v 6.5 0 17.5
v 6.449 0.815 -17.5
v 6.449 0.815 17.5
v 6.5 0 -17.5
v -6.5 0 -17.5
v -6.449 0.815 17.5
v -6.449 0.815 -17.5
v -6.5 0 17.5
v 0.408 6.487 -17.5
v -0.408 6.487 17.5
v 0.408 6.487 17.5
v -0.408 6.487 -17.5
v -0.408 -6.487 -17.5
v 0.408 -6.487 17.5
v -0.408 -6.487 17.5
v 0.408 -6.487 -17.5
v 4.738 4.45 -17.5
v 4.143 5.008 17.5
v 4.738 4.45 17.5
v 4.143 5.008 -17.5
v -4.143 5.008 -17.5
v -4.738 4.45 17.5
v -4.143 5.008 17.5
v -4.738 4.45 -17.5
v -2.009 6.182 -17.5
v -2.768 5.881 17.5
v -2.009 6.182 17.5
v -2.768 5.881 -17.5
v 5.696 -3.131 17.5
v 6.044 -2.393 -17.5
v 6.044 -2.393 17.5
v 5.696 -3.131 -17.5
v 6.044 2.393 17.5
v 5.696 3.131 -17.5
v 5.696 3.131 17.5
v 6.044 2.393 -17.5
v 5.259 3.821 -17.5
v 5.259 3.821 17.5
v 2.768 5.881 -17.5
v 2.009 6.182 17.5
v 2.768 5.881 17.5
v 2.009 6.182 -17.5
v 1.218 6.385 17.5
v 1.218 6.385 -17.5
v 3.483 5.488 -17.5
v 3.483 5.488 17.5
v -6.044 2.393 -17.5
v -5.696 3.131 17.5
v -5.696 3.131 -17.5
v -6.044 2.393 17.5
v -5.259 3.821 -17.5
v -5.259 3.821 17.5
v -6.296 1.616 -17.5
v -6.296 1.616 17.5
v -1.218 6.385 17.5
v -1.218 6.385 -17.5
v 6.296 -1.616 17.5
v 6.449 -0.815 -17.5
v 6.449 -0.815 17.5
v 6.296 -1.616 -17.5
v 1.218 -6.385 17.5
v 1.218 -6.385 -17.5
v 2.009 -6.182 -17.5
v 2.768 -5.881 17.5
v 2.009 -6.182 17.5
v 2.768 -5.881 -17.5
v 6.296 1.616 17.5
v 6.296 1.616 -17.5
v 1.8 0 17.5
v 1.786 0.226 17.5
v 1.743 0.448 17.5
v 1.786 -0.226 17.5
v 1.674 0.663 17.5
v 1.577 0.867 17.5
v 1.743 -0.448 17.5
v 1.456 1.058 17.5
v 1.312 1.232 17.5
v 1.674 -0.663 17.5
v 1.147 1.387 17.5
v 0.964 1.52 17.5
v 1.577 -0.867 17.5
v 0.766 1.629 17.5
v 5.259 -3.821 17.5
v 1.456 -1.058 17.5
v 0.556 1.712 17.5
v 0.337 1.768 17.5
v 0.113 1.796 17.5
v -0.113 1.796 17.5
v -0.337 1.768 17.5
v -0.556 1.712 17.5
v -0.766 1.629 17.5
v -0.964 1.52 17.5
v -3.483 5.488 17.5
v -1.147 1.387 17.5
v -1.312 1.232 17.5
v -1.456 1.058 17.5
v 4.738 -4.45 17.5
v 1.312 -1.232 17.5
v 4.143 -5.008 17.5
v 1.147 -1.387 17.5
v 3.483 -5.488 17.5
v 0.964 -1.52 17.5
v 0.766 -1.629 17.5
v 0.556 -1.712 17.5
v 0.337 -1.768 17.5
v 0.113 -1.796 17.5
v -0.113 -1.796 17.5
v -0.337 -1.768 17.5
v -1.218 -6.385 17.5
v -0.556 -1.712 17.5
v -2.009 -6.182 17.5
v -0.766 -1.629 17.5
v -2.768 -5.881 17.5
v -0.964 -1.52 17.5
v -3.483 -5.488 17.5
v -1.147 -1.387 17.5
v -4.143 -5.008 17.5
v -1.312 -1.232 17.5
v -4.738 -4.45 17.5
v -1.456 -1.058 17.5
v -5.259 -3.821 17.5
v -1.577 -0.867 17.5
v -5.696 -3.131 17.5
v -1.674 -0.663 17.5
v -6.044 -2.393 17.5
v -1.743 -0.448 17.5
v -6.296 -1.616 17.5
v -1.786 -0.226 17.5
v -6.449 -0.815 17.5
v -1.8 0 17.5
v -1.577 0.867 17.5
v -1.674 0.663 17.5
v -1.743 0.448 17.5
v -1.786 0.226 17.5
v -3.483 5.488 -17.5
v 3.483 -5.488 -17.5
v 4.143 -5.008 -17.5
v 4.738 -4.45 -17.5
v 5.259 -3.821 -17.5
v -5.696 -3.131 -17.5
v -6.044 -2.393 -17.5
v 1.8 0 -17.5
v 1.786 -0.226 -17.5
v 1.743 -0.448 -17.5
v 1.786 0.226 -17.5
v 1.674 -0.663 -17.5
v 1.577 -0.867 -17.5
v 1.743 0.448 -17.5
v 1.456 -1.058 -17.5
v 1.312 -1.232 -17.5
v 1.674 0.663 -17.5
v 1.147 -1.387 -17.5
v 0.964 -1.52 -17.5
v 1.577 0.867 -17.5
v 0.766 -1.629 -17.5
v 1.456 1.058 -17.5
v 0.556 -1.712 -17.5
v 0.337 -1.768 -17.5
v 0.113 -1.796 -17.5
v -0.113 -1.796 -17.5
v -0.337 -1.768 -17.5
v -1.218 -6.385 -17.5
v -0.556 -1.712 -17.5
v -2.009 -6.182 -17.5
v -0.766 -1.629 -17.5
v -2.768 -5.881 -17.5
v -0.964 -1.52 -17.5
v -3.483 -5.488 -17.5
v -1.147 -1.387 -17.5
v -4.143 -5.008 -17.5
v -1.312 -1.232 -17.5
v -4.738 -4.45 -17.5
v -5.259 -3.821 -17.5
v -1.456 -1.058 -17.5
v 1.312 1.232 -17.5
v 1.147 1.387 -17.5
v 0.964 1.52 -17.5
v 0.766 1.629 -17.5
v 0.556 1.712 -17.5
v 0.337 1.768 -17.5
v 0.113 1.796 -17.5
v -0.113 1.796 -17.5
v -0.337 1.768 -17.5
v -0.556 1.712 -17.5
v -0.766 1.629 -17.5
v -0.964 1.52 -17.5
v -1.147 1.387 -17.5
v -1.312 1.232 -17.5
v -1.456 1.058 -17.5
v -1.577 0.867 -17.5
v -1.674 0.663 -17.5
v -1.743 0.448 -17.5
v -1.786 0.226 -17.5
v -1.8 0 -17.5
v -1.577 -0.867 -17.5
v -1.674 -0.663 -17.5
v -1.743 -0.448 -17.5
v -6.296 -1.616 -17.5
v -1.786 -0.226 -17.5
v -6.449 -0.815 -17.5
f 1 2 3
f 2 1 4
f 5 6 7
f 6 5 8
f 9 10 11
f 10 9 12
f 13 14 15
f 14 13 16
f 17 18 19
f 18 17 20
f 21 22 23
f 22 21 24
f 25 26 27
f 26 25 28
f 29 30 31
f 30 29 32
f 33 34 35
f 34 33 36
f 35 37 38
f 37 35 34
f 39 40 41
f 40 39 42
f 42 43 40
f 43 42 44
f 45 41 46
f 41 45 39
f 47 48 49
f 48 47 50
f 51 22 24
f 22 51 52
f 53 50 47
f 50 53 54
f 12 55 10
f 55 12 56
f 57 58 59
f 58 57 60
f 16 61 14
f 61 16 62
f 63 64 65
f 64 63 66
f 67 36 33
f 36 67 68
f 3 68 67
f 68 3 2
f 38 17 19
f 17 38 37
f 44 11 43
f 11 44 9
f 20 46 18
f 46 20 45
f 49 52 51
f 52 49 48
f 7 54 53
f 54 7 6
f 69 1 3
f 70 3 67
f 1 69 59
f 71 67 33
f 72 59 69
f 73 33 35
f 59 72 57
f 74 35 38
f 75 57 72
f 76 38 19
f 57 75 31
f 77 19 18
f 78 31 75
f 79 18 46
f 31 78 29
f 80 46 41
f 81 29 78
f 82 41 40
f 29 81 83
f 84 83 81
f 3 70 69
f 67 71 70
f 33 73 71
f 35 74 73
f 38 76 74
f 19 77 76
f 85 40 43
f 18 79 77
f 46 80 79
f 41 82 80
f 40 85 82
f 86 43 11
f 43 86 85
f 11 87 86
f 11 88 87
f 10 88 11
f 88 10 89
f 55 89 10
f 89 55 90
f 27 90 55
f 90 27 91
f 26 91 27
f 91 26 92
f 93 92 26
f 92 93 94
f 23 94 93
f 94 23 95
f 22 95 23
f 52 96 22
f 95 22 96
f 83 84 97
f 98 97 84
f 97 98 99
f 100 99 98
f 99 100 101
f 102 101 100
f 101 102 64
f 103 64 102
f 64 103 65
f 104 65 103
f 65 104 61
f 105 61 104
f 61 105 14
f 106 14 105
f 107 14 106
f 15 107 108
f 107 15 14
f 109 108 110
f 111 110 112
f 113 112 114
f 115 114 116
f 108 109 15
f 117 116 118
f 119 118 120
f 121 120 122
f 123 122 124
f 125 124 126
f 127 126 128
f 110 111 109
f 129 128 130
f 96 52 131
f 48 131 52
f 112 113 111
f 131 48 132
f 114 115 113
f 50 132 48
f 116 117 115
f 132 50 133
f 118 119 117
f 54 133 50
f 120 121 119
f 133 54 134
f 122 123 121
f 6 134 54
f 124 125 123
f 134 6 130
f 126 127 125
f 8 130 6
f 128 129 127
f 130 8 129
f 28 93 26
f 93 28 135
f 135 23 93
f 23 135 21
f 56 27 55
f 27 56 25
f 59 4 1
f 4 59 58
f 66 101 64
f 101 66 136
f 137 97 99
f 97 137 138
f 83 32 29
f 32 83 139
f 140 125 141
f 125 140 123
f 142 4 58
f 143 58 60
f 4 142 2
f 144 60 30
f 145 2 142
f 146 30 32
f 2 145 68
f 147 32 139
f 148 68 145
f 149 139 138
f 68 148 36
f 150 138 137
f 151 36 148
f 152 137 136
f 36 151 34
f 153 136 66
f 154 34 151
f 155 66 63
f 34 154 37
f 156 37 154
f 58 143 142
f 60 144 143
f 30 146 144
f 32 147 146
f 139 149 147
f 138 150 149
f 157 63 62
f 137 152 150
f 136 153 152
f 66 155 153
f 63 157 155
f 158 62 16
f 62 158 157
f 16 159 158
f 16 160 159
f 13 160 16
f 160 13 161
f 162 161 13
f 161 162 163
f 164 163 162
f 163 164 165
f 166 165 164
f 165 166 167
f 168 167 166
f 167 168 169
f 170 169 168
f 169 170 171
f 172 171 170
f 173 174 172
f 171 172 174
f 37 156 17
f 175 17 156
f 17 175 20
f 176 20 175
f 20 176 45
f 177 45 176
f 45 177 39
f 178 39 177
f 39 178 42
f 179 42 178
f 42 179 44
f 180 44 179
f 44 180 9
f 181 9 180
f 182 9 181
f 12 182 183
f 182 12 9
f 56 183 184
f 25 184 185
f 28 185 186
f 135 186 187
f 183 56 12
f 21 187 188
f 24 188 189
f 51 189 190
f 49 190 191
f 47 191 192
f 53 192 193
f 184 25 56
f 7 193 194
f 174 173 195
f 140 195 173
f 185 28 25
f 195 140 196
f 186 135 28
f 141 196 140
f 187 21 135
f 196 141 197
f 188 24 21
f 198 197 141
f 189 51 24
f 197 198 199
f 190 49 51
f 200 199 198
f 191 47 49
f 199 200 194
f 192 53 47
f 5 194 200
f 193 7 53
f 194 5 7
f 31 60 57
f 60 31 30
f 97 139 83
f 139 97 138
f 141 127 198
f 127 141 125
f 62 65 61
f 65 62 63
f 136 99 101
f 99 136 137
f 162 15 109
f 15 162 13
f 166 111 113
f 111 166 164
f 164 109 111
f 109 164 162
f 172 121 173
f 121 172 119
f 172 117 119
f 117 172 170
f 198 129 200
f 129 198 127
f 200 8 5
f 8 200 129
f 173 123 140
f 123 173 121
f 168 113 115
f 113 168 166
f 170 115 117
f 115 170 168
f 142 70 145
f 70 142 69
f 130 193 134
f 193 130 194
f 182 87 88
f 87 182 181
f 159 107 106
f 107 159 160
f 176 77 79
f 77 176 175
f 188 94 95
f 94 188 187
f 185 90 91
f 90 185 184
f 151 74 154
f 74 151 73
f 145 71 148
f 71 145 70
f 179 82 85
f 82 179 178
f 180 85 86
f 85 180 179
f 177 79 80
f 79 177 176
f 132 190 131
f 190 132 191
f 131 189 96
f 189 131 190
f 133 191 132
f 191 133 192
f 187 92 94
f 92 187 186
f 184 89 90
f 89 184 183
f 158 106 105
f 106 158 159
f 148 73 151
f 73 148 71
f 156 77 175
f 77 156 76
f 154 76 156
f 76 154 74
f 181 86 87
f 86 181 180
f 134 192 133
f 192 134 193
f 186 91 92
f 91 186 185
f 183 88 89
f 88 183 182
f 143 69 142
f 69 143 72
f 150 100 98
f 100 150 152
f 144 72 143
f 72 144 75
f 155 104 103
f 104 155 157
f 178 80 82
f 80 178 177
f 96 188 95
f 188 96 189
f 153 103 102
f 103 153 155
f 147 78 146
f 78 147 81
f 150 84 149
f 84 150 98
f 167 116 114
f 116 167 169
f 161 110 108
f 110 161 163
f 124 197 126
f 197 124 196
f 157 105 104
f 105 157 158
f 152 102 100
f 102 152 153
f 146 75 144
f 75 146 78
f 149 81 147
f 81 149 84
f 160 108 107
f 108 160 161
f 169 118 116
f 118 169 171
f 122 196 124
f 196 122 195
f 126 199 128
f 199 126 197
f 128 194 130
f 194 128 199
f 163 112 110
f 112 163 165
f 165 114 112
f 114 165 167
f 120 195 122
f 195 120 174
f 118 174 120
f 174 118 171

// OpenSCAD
$fn = 50;


difference() {
	union() {
		translate(v = [0, 0, -17.5000000000]) {
			cylinder(h = 35, r = 6.5000000000);
		}
	}
	union() {
		translate(v = [0, 0, -100.0000000000]) {
			cylinder(h = 200, r = 1.8000000000);
		}
	}
}
